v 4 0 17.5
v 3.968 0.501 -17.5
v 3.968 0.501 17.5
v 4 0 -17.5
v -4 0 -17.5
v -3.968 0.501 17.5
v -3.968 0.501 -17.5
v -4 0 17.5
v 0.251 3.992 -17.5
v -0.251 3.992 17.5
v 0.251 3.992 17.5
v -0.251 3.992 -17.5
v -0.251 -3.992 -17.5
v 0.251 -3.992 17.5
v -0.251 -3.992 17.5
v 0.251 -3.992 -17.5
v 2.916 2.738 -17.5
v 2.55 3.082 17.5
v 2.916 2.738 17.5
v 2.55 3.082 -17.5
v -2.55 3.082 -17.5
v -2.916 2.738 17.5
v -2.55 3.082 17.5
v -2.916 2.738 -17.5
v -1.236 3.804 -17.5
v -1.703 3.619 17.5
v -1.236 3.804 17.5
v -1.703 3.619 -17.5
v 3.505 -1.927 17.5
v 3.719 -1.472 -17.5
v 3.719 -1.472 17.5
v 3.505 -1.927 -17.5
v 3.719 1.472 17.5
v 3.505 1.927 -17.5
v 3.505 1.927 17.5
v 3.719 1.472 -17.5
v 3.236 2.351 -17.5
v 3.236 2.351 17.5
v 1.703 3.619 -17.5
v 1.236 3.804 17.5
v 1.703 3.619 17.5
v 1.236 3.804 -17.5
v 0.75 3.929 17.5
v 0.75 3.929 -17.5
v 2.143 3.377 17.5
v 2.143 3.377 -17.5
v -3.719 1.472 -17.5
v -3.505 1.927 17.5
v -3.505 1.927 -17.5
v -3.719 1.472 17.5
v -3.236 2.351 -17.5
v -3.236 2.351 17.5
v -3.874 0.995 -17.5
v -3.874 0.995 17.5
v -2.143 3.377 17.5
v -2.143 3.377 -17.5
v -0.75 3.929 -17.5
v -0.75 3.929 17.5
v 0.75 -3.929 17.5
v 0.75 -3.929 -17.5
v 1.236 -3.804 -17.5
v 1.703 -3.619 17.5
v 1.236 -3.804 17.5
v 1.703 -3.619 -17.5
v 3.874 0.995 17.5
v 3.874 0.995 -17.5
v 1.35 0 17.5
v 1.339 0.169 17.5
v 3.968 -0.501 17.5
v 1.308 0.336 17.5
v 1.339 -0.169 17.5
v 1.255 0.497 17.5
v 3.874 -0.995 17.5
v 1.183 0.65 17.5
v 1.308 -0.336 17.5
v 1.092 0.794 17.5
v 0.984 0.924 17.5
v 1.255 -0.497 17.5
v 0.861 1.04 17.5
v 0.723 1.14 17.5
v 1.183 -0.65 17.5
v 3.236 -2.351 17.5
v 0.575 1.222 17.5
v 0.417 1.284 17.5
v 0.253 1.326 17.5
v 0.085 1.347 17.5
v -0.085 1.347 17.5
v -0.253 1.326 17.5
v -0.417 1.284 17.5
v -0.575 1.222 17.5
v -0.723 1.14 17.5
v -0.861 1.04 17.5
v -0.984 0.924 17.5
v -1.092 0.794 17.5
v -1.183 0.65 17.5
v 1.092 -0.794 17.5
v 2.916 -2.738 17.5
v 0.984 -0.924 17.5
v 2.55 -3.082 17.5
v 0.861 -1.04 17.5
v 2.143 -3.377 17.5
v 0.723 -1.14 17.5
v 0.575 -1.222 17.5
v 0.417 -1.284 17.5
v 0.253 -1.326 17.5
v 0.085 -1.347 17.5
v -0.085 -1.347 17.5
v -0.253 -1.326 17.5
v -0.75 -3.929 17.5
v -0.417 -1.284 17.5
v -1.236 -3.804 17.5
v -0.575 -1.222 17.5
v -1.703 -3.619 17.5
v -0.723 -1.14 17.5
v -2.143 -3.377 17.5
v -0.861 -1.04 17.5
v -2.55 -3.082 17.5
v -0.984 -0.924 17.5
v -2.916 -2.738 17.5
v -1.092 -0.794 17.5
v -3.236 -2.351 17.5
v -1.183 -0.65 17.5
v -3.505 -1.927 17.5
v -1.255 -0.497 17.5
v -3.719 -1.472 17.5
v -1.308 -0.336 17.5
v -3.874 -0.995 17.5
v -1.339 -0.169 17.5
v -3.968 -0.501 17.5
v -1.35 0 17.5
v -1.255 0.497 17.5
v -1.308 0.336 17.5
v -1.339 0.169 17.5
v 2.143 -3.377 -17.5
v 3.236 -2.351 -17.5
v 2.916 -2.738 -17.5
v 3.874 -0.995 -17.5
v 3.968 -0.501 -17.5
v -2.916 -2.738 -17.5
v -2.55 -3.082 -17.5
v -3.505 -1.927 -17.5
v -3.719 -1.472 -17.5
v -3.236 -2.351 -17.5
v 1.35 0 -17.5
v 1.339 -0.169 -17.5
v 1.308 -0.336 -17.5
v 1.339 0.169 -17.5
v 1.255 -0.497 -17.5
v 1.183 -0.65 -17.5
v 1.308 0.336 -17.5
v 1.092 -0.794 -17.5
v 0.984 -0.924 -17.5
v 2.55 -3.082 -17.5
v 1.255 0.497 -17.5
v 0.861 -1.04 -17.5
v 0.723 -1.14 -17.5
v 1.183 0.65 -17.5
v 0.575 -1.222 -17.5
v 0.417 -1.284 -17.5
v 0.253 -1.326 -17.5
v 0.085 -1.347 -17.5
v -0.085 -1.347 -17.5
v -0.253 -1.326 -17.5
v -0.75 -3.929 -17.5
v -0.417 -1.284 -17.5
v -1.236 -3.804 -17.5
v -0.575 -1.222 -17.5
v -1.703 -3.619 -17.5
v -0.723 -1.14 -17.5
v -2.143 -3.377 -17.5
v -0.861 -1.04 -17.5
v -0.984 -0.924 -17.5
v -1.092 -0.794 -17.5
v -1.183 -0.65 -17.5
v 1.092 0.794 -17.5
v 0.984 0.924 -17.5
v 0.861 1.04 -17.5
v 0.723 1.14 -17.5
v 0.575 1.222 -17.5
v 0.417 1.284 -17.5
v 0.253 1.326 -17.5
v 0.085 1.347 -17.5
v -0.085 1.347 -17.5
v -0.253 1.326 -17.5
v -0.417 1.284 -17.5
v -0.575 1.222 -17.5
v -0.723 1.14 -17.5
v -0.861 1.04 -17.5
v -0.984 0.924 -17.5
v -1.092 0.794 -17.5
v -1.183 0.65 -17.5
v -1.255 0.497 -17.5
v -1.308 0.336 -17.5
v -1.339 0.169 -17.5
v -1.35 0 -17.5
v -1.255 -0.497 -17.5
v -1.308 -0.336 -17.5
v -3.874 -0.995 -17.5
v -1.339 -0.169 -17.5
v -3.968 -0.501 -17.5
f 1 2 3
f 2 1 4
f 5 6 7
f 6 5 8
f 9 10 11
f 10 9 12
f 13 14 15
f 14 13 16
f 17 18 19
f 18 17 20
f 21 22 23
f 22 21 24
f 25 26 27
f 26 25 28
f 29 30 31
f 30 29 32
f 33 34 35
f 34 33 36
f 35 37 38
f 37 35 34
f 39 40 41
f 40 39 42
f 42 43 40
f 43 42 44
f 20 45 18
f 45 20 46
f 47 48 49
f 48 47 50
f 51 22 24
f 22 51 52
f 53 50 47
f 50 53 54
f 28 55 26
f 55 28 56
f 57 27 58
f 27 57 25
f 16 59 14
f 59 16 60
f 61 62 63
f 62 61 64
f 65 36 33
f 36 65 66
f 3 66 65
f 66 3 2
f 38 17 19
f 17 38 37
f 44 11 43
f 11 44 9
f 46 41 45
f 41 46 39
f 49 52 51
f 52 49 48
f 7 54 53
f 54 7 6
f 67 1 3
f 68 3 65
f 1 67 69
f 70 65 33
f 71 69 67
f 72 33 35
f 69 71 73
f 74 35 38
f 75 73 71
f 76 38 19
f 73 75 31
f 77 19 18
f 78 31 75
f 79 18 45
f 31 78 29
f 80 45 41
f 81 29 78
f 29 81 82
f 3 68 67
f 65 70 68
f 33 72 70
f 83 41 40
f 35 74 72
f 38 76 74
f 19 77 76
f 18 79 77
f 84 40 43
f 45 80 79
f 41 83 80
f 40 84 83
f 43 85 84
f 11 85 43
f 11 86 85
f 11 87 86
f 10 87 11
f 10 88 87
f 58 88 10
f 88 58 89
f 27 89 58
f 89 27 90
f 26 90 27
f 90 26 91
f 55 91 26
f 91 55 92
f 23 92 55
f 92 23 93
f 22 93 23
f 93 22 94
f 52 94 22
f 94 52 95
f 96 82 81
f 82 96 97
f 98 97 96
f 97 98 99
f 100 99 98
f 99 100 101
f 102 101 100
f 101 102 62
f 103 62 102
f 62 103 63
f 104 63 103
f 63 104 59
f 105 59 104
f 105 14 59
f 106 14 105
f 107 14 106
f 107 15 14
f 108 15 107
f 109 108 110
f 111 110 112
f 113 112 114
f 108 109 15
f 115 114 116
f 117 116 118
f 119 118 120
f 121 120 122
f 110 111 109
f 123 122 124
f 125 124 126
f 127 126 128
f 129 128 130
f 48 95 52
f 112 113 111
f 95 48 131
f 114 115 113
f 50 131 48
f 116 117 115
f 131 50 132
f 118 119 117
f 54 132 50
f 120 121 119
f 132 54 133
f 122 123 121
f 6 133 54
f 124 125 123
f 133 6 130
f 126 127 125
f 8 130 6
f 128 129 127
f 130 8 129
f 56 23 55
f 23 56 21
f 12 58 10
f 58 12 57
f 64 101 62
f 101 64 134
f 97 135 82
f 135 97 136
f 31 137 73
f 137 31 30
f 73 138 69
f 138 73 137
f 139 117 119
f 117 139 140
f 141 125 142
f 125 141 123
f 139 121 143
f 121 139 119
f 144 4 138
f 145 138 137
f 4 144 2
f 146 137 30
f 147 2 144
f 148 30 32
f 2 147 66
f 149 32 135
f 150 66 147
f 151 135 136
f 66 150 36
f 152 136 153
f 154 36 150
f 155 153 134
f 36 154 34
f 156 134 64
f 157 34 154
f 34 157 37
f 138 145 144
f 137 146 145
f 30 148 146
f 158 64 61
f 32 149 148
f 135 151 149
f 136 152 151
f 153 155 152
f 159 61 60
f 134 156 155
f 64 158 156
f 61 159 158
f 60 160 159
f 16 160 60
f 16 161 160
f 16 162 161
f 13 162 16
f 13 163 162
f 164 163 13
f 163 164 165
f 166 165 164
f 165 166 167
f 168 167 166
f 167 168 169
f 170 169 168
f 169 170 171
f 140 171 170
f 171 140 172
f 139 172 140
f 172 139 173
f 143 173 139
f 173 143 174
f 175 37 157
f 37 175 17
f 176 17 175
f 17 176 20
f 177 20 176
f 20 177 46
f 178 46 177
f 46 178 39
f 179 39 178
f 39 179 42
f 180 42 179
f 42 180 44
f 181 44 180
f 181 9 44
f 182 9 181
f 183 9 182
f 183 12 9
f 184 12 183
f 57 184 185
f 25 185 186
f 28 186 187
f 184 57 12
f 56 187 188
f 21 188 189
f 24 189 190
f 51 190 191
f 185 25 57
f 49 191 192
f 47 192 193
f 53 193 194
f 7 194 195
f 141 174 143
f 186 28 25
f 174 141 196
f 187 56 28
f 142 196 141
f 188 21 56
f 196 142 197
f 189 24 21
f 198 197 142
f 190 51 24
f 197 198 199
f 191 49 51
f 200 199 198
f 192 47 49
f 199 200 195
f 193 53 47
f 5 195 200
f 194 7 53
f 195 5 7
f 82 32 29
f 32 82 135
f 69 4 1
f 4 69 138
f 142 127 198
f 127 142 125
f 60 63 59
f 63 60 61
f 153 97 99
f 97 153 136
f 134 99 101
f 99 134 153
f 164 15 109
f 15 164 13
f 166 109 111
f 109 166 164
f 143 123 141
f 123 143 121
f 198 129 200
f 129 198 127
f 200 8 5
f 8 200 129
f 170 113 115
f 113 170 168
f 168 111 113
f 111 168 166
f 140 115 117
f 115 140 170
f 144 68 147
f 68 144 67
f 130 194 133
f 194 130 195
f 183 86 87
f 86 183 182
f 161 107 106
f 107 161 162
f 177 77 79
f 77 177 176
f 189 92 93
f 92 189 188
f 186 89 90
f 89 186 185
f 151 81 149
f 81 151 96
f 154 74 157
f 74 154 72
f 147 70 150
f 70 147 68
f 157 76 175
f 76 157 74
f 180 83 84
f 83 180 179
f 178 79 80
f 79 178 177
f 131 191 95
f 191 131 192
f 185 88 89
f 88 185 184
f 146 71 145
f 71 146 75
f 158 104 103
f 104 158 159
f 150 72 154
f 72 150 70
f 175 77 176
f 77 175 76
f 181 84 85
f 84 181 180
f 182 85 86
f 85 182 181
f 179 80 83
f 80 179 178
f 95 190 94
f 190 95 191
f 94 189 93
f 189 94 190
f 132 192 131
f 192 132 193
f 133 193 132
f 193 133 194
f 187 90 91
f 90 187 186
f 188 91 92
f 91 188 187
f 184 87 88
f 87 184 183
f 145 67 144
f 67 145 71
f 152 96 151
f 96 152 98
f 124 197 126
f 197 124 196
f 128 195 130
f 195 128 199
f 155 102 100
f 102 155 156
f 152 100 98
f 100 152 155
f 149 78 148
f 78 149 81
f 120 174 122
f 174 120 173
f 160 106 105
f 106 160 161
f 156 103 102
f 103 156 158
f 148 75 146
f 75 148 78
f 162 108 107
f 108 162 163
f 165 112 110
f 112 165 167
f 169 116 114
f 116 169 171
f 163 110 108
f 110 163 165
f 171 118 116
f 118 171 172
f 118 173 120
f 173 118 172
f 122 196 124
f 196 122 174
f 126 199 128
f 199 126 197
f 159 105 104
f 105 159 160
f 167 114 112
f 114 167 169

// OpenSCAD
$fn = 50;


difference() {
	union() {
		translate(v = [0, 0, -17.5000000000]) {
			cylinder(h = 35, r = 4.0000000000);
		}
	}
	union() {
		translate(v = [0, 0, -100.0000000000]) {
			cylinder(h = 200, r = 1.3500000000);
		}
	}
}
